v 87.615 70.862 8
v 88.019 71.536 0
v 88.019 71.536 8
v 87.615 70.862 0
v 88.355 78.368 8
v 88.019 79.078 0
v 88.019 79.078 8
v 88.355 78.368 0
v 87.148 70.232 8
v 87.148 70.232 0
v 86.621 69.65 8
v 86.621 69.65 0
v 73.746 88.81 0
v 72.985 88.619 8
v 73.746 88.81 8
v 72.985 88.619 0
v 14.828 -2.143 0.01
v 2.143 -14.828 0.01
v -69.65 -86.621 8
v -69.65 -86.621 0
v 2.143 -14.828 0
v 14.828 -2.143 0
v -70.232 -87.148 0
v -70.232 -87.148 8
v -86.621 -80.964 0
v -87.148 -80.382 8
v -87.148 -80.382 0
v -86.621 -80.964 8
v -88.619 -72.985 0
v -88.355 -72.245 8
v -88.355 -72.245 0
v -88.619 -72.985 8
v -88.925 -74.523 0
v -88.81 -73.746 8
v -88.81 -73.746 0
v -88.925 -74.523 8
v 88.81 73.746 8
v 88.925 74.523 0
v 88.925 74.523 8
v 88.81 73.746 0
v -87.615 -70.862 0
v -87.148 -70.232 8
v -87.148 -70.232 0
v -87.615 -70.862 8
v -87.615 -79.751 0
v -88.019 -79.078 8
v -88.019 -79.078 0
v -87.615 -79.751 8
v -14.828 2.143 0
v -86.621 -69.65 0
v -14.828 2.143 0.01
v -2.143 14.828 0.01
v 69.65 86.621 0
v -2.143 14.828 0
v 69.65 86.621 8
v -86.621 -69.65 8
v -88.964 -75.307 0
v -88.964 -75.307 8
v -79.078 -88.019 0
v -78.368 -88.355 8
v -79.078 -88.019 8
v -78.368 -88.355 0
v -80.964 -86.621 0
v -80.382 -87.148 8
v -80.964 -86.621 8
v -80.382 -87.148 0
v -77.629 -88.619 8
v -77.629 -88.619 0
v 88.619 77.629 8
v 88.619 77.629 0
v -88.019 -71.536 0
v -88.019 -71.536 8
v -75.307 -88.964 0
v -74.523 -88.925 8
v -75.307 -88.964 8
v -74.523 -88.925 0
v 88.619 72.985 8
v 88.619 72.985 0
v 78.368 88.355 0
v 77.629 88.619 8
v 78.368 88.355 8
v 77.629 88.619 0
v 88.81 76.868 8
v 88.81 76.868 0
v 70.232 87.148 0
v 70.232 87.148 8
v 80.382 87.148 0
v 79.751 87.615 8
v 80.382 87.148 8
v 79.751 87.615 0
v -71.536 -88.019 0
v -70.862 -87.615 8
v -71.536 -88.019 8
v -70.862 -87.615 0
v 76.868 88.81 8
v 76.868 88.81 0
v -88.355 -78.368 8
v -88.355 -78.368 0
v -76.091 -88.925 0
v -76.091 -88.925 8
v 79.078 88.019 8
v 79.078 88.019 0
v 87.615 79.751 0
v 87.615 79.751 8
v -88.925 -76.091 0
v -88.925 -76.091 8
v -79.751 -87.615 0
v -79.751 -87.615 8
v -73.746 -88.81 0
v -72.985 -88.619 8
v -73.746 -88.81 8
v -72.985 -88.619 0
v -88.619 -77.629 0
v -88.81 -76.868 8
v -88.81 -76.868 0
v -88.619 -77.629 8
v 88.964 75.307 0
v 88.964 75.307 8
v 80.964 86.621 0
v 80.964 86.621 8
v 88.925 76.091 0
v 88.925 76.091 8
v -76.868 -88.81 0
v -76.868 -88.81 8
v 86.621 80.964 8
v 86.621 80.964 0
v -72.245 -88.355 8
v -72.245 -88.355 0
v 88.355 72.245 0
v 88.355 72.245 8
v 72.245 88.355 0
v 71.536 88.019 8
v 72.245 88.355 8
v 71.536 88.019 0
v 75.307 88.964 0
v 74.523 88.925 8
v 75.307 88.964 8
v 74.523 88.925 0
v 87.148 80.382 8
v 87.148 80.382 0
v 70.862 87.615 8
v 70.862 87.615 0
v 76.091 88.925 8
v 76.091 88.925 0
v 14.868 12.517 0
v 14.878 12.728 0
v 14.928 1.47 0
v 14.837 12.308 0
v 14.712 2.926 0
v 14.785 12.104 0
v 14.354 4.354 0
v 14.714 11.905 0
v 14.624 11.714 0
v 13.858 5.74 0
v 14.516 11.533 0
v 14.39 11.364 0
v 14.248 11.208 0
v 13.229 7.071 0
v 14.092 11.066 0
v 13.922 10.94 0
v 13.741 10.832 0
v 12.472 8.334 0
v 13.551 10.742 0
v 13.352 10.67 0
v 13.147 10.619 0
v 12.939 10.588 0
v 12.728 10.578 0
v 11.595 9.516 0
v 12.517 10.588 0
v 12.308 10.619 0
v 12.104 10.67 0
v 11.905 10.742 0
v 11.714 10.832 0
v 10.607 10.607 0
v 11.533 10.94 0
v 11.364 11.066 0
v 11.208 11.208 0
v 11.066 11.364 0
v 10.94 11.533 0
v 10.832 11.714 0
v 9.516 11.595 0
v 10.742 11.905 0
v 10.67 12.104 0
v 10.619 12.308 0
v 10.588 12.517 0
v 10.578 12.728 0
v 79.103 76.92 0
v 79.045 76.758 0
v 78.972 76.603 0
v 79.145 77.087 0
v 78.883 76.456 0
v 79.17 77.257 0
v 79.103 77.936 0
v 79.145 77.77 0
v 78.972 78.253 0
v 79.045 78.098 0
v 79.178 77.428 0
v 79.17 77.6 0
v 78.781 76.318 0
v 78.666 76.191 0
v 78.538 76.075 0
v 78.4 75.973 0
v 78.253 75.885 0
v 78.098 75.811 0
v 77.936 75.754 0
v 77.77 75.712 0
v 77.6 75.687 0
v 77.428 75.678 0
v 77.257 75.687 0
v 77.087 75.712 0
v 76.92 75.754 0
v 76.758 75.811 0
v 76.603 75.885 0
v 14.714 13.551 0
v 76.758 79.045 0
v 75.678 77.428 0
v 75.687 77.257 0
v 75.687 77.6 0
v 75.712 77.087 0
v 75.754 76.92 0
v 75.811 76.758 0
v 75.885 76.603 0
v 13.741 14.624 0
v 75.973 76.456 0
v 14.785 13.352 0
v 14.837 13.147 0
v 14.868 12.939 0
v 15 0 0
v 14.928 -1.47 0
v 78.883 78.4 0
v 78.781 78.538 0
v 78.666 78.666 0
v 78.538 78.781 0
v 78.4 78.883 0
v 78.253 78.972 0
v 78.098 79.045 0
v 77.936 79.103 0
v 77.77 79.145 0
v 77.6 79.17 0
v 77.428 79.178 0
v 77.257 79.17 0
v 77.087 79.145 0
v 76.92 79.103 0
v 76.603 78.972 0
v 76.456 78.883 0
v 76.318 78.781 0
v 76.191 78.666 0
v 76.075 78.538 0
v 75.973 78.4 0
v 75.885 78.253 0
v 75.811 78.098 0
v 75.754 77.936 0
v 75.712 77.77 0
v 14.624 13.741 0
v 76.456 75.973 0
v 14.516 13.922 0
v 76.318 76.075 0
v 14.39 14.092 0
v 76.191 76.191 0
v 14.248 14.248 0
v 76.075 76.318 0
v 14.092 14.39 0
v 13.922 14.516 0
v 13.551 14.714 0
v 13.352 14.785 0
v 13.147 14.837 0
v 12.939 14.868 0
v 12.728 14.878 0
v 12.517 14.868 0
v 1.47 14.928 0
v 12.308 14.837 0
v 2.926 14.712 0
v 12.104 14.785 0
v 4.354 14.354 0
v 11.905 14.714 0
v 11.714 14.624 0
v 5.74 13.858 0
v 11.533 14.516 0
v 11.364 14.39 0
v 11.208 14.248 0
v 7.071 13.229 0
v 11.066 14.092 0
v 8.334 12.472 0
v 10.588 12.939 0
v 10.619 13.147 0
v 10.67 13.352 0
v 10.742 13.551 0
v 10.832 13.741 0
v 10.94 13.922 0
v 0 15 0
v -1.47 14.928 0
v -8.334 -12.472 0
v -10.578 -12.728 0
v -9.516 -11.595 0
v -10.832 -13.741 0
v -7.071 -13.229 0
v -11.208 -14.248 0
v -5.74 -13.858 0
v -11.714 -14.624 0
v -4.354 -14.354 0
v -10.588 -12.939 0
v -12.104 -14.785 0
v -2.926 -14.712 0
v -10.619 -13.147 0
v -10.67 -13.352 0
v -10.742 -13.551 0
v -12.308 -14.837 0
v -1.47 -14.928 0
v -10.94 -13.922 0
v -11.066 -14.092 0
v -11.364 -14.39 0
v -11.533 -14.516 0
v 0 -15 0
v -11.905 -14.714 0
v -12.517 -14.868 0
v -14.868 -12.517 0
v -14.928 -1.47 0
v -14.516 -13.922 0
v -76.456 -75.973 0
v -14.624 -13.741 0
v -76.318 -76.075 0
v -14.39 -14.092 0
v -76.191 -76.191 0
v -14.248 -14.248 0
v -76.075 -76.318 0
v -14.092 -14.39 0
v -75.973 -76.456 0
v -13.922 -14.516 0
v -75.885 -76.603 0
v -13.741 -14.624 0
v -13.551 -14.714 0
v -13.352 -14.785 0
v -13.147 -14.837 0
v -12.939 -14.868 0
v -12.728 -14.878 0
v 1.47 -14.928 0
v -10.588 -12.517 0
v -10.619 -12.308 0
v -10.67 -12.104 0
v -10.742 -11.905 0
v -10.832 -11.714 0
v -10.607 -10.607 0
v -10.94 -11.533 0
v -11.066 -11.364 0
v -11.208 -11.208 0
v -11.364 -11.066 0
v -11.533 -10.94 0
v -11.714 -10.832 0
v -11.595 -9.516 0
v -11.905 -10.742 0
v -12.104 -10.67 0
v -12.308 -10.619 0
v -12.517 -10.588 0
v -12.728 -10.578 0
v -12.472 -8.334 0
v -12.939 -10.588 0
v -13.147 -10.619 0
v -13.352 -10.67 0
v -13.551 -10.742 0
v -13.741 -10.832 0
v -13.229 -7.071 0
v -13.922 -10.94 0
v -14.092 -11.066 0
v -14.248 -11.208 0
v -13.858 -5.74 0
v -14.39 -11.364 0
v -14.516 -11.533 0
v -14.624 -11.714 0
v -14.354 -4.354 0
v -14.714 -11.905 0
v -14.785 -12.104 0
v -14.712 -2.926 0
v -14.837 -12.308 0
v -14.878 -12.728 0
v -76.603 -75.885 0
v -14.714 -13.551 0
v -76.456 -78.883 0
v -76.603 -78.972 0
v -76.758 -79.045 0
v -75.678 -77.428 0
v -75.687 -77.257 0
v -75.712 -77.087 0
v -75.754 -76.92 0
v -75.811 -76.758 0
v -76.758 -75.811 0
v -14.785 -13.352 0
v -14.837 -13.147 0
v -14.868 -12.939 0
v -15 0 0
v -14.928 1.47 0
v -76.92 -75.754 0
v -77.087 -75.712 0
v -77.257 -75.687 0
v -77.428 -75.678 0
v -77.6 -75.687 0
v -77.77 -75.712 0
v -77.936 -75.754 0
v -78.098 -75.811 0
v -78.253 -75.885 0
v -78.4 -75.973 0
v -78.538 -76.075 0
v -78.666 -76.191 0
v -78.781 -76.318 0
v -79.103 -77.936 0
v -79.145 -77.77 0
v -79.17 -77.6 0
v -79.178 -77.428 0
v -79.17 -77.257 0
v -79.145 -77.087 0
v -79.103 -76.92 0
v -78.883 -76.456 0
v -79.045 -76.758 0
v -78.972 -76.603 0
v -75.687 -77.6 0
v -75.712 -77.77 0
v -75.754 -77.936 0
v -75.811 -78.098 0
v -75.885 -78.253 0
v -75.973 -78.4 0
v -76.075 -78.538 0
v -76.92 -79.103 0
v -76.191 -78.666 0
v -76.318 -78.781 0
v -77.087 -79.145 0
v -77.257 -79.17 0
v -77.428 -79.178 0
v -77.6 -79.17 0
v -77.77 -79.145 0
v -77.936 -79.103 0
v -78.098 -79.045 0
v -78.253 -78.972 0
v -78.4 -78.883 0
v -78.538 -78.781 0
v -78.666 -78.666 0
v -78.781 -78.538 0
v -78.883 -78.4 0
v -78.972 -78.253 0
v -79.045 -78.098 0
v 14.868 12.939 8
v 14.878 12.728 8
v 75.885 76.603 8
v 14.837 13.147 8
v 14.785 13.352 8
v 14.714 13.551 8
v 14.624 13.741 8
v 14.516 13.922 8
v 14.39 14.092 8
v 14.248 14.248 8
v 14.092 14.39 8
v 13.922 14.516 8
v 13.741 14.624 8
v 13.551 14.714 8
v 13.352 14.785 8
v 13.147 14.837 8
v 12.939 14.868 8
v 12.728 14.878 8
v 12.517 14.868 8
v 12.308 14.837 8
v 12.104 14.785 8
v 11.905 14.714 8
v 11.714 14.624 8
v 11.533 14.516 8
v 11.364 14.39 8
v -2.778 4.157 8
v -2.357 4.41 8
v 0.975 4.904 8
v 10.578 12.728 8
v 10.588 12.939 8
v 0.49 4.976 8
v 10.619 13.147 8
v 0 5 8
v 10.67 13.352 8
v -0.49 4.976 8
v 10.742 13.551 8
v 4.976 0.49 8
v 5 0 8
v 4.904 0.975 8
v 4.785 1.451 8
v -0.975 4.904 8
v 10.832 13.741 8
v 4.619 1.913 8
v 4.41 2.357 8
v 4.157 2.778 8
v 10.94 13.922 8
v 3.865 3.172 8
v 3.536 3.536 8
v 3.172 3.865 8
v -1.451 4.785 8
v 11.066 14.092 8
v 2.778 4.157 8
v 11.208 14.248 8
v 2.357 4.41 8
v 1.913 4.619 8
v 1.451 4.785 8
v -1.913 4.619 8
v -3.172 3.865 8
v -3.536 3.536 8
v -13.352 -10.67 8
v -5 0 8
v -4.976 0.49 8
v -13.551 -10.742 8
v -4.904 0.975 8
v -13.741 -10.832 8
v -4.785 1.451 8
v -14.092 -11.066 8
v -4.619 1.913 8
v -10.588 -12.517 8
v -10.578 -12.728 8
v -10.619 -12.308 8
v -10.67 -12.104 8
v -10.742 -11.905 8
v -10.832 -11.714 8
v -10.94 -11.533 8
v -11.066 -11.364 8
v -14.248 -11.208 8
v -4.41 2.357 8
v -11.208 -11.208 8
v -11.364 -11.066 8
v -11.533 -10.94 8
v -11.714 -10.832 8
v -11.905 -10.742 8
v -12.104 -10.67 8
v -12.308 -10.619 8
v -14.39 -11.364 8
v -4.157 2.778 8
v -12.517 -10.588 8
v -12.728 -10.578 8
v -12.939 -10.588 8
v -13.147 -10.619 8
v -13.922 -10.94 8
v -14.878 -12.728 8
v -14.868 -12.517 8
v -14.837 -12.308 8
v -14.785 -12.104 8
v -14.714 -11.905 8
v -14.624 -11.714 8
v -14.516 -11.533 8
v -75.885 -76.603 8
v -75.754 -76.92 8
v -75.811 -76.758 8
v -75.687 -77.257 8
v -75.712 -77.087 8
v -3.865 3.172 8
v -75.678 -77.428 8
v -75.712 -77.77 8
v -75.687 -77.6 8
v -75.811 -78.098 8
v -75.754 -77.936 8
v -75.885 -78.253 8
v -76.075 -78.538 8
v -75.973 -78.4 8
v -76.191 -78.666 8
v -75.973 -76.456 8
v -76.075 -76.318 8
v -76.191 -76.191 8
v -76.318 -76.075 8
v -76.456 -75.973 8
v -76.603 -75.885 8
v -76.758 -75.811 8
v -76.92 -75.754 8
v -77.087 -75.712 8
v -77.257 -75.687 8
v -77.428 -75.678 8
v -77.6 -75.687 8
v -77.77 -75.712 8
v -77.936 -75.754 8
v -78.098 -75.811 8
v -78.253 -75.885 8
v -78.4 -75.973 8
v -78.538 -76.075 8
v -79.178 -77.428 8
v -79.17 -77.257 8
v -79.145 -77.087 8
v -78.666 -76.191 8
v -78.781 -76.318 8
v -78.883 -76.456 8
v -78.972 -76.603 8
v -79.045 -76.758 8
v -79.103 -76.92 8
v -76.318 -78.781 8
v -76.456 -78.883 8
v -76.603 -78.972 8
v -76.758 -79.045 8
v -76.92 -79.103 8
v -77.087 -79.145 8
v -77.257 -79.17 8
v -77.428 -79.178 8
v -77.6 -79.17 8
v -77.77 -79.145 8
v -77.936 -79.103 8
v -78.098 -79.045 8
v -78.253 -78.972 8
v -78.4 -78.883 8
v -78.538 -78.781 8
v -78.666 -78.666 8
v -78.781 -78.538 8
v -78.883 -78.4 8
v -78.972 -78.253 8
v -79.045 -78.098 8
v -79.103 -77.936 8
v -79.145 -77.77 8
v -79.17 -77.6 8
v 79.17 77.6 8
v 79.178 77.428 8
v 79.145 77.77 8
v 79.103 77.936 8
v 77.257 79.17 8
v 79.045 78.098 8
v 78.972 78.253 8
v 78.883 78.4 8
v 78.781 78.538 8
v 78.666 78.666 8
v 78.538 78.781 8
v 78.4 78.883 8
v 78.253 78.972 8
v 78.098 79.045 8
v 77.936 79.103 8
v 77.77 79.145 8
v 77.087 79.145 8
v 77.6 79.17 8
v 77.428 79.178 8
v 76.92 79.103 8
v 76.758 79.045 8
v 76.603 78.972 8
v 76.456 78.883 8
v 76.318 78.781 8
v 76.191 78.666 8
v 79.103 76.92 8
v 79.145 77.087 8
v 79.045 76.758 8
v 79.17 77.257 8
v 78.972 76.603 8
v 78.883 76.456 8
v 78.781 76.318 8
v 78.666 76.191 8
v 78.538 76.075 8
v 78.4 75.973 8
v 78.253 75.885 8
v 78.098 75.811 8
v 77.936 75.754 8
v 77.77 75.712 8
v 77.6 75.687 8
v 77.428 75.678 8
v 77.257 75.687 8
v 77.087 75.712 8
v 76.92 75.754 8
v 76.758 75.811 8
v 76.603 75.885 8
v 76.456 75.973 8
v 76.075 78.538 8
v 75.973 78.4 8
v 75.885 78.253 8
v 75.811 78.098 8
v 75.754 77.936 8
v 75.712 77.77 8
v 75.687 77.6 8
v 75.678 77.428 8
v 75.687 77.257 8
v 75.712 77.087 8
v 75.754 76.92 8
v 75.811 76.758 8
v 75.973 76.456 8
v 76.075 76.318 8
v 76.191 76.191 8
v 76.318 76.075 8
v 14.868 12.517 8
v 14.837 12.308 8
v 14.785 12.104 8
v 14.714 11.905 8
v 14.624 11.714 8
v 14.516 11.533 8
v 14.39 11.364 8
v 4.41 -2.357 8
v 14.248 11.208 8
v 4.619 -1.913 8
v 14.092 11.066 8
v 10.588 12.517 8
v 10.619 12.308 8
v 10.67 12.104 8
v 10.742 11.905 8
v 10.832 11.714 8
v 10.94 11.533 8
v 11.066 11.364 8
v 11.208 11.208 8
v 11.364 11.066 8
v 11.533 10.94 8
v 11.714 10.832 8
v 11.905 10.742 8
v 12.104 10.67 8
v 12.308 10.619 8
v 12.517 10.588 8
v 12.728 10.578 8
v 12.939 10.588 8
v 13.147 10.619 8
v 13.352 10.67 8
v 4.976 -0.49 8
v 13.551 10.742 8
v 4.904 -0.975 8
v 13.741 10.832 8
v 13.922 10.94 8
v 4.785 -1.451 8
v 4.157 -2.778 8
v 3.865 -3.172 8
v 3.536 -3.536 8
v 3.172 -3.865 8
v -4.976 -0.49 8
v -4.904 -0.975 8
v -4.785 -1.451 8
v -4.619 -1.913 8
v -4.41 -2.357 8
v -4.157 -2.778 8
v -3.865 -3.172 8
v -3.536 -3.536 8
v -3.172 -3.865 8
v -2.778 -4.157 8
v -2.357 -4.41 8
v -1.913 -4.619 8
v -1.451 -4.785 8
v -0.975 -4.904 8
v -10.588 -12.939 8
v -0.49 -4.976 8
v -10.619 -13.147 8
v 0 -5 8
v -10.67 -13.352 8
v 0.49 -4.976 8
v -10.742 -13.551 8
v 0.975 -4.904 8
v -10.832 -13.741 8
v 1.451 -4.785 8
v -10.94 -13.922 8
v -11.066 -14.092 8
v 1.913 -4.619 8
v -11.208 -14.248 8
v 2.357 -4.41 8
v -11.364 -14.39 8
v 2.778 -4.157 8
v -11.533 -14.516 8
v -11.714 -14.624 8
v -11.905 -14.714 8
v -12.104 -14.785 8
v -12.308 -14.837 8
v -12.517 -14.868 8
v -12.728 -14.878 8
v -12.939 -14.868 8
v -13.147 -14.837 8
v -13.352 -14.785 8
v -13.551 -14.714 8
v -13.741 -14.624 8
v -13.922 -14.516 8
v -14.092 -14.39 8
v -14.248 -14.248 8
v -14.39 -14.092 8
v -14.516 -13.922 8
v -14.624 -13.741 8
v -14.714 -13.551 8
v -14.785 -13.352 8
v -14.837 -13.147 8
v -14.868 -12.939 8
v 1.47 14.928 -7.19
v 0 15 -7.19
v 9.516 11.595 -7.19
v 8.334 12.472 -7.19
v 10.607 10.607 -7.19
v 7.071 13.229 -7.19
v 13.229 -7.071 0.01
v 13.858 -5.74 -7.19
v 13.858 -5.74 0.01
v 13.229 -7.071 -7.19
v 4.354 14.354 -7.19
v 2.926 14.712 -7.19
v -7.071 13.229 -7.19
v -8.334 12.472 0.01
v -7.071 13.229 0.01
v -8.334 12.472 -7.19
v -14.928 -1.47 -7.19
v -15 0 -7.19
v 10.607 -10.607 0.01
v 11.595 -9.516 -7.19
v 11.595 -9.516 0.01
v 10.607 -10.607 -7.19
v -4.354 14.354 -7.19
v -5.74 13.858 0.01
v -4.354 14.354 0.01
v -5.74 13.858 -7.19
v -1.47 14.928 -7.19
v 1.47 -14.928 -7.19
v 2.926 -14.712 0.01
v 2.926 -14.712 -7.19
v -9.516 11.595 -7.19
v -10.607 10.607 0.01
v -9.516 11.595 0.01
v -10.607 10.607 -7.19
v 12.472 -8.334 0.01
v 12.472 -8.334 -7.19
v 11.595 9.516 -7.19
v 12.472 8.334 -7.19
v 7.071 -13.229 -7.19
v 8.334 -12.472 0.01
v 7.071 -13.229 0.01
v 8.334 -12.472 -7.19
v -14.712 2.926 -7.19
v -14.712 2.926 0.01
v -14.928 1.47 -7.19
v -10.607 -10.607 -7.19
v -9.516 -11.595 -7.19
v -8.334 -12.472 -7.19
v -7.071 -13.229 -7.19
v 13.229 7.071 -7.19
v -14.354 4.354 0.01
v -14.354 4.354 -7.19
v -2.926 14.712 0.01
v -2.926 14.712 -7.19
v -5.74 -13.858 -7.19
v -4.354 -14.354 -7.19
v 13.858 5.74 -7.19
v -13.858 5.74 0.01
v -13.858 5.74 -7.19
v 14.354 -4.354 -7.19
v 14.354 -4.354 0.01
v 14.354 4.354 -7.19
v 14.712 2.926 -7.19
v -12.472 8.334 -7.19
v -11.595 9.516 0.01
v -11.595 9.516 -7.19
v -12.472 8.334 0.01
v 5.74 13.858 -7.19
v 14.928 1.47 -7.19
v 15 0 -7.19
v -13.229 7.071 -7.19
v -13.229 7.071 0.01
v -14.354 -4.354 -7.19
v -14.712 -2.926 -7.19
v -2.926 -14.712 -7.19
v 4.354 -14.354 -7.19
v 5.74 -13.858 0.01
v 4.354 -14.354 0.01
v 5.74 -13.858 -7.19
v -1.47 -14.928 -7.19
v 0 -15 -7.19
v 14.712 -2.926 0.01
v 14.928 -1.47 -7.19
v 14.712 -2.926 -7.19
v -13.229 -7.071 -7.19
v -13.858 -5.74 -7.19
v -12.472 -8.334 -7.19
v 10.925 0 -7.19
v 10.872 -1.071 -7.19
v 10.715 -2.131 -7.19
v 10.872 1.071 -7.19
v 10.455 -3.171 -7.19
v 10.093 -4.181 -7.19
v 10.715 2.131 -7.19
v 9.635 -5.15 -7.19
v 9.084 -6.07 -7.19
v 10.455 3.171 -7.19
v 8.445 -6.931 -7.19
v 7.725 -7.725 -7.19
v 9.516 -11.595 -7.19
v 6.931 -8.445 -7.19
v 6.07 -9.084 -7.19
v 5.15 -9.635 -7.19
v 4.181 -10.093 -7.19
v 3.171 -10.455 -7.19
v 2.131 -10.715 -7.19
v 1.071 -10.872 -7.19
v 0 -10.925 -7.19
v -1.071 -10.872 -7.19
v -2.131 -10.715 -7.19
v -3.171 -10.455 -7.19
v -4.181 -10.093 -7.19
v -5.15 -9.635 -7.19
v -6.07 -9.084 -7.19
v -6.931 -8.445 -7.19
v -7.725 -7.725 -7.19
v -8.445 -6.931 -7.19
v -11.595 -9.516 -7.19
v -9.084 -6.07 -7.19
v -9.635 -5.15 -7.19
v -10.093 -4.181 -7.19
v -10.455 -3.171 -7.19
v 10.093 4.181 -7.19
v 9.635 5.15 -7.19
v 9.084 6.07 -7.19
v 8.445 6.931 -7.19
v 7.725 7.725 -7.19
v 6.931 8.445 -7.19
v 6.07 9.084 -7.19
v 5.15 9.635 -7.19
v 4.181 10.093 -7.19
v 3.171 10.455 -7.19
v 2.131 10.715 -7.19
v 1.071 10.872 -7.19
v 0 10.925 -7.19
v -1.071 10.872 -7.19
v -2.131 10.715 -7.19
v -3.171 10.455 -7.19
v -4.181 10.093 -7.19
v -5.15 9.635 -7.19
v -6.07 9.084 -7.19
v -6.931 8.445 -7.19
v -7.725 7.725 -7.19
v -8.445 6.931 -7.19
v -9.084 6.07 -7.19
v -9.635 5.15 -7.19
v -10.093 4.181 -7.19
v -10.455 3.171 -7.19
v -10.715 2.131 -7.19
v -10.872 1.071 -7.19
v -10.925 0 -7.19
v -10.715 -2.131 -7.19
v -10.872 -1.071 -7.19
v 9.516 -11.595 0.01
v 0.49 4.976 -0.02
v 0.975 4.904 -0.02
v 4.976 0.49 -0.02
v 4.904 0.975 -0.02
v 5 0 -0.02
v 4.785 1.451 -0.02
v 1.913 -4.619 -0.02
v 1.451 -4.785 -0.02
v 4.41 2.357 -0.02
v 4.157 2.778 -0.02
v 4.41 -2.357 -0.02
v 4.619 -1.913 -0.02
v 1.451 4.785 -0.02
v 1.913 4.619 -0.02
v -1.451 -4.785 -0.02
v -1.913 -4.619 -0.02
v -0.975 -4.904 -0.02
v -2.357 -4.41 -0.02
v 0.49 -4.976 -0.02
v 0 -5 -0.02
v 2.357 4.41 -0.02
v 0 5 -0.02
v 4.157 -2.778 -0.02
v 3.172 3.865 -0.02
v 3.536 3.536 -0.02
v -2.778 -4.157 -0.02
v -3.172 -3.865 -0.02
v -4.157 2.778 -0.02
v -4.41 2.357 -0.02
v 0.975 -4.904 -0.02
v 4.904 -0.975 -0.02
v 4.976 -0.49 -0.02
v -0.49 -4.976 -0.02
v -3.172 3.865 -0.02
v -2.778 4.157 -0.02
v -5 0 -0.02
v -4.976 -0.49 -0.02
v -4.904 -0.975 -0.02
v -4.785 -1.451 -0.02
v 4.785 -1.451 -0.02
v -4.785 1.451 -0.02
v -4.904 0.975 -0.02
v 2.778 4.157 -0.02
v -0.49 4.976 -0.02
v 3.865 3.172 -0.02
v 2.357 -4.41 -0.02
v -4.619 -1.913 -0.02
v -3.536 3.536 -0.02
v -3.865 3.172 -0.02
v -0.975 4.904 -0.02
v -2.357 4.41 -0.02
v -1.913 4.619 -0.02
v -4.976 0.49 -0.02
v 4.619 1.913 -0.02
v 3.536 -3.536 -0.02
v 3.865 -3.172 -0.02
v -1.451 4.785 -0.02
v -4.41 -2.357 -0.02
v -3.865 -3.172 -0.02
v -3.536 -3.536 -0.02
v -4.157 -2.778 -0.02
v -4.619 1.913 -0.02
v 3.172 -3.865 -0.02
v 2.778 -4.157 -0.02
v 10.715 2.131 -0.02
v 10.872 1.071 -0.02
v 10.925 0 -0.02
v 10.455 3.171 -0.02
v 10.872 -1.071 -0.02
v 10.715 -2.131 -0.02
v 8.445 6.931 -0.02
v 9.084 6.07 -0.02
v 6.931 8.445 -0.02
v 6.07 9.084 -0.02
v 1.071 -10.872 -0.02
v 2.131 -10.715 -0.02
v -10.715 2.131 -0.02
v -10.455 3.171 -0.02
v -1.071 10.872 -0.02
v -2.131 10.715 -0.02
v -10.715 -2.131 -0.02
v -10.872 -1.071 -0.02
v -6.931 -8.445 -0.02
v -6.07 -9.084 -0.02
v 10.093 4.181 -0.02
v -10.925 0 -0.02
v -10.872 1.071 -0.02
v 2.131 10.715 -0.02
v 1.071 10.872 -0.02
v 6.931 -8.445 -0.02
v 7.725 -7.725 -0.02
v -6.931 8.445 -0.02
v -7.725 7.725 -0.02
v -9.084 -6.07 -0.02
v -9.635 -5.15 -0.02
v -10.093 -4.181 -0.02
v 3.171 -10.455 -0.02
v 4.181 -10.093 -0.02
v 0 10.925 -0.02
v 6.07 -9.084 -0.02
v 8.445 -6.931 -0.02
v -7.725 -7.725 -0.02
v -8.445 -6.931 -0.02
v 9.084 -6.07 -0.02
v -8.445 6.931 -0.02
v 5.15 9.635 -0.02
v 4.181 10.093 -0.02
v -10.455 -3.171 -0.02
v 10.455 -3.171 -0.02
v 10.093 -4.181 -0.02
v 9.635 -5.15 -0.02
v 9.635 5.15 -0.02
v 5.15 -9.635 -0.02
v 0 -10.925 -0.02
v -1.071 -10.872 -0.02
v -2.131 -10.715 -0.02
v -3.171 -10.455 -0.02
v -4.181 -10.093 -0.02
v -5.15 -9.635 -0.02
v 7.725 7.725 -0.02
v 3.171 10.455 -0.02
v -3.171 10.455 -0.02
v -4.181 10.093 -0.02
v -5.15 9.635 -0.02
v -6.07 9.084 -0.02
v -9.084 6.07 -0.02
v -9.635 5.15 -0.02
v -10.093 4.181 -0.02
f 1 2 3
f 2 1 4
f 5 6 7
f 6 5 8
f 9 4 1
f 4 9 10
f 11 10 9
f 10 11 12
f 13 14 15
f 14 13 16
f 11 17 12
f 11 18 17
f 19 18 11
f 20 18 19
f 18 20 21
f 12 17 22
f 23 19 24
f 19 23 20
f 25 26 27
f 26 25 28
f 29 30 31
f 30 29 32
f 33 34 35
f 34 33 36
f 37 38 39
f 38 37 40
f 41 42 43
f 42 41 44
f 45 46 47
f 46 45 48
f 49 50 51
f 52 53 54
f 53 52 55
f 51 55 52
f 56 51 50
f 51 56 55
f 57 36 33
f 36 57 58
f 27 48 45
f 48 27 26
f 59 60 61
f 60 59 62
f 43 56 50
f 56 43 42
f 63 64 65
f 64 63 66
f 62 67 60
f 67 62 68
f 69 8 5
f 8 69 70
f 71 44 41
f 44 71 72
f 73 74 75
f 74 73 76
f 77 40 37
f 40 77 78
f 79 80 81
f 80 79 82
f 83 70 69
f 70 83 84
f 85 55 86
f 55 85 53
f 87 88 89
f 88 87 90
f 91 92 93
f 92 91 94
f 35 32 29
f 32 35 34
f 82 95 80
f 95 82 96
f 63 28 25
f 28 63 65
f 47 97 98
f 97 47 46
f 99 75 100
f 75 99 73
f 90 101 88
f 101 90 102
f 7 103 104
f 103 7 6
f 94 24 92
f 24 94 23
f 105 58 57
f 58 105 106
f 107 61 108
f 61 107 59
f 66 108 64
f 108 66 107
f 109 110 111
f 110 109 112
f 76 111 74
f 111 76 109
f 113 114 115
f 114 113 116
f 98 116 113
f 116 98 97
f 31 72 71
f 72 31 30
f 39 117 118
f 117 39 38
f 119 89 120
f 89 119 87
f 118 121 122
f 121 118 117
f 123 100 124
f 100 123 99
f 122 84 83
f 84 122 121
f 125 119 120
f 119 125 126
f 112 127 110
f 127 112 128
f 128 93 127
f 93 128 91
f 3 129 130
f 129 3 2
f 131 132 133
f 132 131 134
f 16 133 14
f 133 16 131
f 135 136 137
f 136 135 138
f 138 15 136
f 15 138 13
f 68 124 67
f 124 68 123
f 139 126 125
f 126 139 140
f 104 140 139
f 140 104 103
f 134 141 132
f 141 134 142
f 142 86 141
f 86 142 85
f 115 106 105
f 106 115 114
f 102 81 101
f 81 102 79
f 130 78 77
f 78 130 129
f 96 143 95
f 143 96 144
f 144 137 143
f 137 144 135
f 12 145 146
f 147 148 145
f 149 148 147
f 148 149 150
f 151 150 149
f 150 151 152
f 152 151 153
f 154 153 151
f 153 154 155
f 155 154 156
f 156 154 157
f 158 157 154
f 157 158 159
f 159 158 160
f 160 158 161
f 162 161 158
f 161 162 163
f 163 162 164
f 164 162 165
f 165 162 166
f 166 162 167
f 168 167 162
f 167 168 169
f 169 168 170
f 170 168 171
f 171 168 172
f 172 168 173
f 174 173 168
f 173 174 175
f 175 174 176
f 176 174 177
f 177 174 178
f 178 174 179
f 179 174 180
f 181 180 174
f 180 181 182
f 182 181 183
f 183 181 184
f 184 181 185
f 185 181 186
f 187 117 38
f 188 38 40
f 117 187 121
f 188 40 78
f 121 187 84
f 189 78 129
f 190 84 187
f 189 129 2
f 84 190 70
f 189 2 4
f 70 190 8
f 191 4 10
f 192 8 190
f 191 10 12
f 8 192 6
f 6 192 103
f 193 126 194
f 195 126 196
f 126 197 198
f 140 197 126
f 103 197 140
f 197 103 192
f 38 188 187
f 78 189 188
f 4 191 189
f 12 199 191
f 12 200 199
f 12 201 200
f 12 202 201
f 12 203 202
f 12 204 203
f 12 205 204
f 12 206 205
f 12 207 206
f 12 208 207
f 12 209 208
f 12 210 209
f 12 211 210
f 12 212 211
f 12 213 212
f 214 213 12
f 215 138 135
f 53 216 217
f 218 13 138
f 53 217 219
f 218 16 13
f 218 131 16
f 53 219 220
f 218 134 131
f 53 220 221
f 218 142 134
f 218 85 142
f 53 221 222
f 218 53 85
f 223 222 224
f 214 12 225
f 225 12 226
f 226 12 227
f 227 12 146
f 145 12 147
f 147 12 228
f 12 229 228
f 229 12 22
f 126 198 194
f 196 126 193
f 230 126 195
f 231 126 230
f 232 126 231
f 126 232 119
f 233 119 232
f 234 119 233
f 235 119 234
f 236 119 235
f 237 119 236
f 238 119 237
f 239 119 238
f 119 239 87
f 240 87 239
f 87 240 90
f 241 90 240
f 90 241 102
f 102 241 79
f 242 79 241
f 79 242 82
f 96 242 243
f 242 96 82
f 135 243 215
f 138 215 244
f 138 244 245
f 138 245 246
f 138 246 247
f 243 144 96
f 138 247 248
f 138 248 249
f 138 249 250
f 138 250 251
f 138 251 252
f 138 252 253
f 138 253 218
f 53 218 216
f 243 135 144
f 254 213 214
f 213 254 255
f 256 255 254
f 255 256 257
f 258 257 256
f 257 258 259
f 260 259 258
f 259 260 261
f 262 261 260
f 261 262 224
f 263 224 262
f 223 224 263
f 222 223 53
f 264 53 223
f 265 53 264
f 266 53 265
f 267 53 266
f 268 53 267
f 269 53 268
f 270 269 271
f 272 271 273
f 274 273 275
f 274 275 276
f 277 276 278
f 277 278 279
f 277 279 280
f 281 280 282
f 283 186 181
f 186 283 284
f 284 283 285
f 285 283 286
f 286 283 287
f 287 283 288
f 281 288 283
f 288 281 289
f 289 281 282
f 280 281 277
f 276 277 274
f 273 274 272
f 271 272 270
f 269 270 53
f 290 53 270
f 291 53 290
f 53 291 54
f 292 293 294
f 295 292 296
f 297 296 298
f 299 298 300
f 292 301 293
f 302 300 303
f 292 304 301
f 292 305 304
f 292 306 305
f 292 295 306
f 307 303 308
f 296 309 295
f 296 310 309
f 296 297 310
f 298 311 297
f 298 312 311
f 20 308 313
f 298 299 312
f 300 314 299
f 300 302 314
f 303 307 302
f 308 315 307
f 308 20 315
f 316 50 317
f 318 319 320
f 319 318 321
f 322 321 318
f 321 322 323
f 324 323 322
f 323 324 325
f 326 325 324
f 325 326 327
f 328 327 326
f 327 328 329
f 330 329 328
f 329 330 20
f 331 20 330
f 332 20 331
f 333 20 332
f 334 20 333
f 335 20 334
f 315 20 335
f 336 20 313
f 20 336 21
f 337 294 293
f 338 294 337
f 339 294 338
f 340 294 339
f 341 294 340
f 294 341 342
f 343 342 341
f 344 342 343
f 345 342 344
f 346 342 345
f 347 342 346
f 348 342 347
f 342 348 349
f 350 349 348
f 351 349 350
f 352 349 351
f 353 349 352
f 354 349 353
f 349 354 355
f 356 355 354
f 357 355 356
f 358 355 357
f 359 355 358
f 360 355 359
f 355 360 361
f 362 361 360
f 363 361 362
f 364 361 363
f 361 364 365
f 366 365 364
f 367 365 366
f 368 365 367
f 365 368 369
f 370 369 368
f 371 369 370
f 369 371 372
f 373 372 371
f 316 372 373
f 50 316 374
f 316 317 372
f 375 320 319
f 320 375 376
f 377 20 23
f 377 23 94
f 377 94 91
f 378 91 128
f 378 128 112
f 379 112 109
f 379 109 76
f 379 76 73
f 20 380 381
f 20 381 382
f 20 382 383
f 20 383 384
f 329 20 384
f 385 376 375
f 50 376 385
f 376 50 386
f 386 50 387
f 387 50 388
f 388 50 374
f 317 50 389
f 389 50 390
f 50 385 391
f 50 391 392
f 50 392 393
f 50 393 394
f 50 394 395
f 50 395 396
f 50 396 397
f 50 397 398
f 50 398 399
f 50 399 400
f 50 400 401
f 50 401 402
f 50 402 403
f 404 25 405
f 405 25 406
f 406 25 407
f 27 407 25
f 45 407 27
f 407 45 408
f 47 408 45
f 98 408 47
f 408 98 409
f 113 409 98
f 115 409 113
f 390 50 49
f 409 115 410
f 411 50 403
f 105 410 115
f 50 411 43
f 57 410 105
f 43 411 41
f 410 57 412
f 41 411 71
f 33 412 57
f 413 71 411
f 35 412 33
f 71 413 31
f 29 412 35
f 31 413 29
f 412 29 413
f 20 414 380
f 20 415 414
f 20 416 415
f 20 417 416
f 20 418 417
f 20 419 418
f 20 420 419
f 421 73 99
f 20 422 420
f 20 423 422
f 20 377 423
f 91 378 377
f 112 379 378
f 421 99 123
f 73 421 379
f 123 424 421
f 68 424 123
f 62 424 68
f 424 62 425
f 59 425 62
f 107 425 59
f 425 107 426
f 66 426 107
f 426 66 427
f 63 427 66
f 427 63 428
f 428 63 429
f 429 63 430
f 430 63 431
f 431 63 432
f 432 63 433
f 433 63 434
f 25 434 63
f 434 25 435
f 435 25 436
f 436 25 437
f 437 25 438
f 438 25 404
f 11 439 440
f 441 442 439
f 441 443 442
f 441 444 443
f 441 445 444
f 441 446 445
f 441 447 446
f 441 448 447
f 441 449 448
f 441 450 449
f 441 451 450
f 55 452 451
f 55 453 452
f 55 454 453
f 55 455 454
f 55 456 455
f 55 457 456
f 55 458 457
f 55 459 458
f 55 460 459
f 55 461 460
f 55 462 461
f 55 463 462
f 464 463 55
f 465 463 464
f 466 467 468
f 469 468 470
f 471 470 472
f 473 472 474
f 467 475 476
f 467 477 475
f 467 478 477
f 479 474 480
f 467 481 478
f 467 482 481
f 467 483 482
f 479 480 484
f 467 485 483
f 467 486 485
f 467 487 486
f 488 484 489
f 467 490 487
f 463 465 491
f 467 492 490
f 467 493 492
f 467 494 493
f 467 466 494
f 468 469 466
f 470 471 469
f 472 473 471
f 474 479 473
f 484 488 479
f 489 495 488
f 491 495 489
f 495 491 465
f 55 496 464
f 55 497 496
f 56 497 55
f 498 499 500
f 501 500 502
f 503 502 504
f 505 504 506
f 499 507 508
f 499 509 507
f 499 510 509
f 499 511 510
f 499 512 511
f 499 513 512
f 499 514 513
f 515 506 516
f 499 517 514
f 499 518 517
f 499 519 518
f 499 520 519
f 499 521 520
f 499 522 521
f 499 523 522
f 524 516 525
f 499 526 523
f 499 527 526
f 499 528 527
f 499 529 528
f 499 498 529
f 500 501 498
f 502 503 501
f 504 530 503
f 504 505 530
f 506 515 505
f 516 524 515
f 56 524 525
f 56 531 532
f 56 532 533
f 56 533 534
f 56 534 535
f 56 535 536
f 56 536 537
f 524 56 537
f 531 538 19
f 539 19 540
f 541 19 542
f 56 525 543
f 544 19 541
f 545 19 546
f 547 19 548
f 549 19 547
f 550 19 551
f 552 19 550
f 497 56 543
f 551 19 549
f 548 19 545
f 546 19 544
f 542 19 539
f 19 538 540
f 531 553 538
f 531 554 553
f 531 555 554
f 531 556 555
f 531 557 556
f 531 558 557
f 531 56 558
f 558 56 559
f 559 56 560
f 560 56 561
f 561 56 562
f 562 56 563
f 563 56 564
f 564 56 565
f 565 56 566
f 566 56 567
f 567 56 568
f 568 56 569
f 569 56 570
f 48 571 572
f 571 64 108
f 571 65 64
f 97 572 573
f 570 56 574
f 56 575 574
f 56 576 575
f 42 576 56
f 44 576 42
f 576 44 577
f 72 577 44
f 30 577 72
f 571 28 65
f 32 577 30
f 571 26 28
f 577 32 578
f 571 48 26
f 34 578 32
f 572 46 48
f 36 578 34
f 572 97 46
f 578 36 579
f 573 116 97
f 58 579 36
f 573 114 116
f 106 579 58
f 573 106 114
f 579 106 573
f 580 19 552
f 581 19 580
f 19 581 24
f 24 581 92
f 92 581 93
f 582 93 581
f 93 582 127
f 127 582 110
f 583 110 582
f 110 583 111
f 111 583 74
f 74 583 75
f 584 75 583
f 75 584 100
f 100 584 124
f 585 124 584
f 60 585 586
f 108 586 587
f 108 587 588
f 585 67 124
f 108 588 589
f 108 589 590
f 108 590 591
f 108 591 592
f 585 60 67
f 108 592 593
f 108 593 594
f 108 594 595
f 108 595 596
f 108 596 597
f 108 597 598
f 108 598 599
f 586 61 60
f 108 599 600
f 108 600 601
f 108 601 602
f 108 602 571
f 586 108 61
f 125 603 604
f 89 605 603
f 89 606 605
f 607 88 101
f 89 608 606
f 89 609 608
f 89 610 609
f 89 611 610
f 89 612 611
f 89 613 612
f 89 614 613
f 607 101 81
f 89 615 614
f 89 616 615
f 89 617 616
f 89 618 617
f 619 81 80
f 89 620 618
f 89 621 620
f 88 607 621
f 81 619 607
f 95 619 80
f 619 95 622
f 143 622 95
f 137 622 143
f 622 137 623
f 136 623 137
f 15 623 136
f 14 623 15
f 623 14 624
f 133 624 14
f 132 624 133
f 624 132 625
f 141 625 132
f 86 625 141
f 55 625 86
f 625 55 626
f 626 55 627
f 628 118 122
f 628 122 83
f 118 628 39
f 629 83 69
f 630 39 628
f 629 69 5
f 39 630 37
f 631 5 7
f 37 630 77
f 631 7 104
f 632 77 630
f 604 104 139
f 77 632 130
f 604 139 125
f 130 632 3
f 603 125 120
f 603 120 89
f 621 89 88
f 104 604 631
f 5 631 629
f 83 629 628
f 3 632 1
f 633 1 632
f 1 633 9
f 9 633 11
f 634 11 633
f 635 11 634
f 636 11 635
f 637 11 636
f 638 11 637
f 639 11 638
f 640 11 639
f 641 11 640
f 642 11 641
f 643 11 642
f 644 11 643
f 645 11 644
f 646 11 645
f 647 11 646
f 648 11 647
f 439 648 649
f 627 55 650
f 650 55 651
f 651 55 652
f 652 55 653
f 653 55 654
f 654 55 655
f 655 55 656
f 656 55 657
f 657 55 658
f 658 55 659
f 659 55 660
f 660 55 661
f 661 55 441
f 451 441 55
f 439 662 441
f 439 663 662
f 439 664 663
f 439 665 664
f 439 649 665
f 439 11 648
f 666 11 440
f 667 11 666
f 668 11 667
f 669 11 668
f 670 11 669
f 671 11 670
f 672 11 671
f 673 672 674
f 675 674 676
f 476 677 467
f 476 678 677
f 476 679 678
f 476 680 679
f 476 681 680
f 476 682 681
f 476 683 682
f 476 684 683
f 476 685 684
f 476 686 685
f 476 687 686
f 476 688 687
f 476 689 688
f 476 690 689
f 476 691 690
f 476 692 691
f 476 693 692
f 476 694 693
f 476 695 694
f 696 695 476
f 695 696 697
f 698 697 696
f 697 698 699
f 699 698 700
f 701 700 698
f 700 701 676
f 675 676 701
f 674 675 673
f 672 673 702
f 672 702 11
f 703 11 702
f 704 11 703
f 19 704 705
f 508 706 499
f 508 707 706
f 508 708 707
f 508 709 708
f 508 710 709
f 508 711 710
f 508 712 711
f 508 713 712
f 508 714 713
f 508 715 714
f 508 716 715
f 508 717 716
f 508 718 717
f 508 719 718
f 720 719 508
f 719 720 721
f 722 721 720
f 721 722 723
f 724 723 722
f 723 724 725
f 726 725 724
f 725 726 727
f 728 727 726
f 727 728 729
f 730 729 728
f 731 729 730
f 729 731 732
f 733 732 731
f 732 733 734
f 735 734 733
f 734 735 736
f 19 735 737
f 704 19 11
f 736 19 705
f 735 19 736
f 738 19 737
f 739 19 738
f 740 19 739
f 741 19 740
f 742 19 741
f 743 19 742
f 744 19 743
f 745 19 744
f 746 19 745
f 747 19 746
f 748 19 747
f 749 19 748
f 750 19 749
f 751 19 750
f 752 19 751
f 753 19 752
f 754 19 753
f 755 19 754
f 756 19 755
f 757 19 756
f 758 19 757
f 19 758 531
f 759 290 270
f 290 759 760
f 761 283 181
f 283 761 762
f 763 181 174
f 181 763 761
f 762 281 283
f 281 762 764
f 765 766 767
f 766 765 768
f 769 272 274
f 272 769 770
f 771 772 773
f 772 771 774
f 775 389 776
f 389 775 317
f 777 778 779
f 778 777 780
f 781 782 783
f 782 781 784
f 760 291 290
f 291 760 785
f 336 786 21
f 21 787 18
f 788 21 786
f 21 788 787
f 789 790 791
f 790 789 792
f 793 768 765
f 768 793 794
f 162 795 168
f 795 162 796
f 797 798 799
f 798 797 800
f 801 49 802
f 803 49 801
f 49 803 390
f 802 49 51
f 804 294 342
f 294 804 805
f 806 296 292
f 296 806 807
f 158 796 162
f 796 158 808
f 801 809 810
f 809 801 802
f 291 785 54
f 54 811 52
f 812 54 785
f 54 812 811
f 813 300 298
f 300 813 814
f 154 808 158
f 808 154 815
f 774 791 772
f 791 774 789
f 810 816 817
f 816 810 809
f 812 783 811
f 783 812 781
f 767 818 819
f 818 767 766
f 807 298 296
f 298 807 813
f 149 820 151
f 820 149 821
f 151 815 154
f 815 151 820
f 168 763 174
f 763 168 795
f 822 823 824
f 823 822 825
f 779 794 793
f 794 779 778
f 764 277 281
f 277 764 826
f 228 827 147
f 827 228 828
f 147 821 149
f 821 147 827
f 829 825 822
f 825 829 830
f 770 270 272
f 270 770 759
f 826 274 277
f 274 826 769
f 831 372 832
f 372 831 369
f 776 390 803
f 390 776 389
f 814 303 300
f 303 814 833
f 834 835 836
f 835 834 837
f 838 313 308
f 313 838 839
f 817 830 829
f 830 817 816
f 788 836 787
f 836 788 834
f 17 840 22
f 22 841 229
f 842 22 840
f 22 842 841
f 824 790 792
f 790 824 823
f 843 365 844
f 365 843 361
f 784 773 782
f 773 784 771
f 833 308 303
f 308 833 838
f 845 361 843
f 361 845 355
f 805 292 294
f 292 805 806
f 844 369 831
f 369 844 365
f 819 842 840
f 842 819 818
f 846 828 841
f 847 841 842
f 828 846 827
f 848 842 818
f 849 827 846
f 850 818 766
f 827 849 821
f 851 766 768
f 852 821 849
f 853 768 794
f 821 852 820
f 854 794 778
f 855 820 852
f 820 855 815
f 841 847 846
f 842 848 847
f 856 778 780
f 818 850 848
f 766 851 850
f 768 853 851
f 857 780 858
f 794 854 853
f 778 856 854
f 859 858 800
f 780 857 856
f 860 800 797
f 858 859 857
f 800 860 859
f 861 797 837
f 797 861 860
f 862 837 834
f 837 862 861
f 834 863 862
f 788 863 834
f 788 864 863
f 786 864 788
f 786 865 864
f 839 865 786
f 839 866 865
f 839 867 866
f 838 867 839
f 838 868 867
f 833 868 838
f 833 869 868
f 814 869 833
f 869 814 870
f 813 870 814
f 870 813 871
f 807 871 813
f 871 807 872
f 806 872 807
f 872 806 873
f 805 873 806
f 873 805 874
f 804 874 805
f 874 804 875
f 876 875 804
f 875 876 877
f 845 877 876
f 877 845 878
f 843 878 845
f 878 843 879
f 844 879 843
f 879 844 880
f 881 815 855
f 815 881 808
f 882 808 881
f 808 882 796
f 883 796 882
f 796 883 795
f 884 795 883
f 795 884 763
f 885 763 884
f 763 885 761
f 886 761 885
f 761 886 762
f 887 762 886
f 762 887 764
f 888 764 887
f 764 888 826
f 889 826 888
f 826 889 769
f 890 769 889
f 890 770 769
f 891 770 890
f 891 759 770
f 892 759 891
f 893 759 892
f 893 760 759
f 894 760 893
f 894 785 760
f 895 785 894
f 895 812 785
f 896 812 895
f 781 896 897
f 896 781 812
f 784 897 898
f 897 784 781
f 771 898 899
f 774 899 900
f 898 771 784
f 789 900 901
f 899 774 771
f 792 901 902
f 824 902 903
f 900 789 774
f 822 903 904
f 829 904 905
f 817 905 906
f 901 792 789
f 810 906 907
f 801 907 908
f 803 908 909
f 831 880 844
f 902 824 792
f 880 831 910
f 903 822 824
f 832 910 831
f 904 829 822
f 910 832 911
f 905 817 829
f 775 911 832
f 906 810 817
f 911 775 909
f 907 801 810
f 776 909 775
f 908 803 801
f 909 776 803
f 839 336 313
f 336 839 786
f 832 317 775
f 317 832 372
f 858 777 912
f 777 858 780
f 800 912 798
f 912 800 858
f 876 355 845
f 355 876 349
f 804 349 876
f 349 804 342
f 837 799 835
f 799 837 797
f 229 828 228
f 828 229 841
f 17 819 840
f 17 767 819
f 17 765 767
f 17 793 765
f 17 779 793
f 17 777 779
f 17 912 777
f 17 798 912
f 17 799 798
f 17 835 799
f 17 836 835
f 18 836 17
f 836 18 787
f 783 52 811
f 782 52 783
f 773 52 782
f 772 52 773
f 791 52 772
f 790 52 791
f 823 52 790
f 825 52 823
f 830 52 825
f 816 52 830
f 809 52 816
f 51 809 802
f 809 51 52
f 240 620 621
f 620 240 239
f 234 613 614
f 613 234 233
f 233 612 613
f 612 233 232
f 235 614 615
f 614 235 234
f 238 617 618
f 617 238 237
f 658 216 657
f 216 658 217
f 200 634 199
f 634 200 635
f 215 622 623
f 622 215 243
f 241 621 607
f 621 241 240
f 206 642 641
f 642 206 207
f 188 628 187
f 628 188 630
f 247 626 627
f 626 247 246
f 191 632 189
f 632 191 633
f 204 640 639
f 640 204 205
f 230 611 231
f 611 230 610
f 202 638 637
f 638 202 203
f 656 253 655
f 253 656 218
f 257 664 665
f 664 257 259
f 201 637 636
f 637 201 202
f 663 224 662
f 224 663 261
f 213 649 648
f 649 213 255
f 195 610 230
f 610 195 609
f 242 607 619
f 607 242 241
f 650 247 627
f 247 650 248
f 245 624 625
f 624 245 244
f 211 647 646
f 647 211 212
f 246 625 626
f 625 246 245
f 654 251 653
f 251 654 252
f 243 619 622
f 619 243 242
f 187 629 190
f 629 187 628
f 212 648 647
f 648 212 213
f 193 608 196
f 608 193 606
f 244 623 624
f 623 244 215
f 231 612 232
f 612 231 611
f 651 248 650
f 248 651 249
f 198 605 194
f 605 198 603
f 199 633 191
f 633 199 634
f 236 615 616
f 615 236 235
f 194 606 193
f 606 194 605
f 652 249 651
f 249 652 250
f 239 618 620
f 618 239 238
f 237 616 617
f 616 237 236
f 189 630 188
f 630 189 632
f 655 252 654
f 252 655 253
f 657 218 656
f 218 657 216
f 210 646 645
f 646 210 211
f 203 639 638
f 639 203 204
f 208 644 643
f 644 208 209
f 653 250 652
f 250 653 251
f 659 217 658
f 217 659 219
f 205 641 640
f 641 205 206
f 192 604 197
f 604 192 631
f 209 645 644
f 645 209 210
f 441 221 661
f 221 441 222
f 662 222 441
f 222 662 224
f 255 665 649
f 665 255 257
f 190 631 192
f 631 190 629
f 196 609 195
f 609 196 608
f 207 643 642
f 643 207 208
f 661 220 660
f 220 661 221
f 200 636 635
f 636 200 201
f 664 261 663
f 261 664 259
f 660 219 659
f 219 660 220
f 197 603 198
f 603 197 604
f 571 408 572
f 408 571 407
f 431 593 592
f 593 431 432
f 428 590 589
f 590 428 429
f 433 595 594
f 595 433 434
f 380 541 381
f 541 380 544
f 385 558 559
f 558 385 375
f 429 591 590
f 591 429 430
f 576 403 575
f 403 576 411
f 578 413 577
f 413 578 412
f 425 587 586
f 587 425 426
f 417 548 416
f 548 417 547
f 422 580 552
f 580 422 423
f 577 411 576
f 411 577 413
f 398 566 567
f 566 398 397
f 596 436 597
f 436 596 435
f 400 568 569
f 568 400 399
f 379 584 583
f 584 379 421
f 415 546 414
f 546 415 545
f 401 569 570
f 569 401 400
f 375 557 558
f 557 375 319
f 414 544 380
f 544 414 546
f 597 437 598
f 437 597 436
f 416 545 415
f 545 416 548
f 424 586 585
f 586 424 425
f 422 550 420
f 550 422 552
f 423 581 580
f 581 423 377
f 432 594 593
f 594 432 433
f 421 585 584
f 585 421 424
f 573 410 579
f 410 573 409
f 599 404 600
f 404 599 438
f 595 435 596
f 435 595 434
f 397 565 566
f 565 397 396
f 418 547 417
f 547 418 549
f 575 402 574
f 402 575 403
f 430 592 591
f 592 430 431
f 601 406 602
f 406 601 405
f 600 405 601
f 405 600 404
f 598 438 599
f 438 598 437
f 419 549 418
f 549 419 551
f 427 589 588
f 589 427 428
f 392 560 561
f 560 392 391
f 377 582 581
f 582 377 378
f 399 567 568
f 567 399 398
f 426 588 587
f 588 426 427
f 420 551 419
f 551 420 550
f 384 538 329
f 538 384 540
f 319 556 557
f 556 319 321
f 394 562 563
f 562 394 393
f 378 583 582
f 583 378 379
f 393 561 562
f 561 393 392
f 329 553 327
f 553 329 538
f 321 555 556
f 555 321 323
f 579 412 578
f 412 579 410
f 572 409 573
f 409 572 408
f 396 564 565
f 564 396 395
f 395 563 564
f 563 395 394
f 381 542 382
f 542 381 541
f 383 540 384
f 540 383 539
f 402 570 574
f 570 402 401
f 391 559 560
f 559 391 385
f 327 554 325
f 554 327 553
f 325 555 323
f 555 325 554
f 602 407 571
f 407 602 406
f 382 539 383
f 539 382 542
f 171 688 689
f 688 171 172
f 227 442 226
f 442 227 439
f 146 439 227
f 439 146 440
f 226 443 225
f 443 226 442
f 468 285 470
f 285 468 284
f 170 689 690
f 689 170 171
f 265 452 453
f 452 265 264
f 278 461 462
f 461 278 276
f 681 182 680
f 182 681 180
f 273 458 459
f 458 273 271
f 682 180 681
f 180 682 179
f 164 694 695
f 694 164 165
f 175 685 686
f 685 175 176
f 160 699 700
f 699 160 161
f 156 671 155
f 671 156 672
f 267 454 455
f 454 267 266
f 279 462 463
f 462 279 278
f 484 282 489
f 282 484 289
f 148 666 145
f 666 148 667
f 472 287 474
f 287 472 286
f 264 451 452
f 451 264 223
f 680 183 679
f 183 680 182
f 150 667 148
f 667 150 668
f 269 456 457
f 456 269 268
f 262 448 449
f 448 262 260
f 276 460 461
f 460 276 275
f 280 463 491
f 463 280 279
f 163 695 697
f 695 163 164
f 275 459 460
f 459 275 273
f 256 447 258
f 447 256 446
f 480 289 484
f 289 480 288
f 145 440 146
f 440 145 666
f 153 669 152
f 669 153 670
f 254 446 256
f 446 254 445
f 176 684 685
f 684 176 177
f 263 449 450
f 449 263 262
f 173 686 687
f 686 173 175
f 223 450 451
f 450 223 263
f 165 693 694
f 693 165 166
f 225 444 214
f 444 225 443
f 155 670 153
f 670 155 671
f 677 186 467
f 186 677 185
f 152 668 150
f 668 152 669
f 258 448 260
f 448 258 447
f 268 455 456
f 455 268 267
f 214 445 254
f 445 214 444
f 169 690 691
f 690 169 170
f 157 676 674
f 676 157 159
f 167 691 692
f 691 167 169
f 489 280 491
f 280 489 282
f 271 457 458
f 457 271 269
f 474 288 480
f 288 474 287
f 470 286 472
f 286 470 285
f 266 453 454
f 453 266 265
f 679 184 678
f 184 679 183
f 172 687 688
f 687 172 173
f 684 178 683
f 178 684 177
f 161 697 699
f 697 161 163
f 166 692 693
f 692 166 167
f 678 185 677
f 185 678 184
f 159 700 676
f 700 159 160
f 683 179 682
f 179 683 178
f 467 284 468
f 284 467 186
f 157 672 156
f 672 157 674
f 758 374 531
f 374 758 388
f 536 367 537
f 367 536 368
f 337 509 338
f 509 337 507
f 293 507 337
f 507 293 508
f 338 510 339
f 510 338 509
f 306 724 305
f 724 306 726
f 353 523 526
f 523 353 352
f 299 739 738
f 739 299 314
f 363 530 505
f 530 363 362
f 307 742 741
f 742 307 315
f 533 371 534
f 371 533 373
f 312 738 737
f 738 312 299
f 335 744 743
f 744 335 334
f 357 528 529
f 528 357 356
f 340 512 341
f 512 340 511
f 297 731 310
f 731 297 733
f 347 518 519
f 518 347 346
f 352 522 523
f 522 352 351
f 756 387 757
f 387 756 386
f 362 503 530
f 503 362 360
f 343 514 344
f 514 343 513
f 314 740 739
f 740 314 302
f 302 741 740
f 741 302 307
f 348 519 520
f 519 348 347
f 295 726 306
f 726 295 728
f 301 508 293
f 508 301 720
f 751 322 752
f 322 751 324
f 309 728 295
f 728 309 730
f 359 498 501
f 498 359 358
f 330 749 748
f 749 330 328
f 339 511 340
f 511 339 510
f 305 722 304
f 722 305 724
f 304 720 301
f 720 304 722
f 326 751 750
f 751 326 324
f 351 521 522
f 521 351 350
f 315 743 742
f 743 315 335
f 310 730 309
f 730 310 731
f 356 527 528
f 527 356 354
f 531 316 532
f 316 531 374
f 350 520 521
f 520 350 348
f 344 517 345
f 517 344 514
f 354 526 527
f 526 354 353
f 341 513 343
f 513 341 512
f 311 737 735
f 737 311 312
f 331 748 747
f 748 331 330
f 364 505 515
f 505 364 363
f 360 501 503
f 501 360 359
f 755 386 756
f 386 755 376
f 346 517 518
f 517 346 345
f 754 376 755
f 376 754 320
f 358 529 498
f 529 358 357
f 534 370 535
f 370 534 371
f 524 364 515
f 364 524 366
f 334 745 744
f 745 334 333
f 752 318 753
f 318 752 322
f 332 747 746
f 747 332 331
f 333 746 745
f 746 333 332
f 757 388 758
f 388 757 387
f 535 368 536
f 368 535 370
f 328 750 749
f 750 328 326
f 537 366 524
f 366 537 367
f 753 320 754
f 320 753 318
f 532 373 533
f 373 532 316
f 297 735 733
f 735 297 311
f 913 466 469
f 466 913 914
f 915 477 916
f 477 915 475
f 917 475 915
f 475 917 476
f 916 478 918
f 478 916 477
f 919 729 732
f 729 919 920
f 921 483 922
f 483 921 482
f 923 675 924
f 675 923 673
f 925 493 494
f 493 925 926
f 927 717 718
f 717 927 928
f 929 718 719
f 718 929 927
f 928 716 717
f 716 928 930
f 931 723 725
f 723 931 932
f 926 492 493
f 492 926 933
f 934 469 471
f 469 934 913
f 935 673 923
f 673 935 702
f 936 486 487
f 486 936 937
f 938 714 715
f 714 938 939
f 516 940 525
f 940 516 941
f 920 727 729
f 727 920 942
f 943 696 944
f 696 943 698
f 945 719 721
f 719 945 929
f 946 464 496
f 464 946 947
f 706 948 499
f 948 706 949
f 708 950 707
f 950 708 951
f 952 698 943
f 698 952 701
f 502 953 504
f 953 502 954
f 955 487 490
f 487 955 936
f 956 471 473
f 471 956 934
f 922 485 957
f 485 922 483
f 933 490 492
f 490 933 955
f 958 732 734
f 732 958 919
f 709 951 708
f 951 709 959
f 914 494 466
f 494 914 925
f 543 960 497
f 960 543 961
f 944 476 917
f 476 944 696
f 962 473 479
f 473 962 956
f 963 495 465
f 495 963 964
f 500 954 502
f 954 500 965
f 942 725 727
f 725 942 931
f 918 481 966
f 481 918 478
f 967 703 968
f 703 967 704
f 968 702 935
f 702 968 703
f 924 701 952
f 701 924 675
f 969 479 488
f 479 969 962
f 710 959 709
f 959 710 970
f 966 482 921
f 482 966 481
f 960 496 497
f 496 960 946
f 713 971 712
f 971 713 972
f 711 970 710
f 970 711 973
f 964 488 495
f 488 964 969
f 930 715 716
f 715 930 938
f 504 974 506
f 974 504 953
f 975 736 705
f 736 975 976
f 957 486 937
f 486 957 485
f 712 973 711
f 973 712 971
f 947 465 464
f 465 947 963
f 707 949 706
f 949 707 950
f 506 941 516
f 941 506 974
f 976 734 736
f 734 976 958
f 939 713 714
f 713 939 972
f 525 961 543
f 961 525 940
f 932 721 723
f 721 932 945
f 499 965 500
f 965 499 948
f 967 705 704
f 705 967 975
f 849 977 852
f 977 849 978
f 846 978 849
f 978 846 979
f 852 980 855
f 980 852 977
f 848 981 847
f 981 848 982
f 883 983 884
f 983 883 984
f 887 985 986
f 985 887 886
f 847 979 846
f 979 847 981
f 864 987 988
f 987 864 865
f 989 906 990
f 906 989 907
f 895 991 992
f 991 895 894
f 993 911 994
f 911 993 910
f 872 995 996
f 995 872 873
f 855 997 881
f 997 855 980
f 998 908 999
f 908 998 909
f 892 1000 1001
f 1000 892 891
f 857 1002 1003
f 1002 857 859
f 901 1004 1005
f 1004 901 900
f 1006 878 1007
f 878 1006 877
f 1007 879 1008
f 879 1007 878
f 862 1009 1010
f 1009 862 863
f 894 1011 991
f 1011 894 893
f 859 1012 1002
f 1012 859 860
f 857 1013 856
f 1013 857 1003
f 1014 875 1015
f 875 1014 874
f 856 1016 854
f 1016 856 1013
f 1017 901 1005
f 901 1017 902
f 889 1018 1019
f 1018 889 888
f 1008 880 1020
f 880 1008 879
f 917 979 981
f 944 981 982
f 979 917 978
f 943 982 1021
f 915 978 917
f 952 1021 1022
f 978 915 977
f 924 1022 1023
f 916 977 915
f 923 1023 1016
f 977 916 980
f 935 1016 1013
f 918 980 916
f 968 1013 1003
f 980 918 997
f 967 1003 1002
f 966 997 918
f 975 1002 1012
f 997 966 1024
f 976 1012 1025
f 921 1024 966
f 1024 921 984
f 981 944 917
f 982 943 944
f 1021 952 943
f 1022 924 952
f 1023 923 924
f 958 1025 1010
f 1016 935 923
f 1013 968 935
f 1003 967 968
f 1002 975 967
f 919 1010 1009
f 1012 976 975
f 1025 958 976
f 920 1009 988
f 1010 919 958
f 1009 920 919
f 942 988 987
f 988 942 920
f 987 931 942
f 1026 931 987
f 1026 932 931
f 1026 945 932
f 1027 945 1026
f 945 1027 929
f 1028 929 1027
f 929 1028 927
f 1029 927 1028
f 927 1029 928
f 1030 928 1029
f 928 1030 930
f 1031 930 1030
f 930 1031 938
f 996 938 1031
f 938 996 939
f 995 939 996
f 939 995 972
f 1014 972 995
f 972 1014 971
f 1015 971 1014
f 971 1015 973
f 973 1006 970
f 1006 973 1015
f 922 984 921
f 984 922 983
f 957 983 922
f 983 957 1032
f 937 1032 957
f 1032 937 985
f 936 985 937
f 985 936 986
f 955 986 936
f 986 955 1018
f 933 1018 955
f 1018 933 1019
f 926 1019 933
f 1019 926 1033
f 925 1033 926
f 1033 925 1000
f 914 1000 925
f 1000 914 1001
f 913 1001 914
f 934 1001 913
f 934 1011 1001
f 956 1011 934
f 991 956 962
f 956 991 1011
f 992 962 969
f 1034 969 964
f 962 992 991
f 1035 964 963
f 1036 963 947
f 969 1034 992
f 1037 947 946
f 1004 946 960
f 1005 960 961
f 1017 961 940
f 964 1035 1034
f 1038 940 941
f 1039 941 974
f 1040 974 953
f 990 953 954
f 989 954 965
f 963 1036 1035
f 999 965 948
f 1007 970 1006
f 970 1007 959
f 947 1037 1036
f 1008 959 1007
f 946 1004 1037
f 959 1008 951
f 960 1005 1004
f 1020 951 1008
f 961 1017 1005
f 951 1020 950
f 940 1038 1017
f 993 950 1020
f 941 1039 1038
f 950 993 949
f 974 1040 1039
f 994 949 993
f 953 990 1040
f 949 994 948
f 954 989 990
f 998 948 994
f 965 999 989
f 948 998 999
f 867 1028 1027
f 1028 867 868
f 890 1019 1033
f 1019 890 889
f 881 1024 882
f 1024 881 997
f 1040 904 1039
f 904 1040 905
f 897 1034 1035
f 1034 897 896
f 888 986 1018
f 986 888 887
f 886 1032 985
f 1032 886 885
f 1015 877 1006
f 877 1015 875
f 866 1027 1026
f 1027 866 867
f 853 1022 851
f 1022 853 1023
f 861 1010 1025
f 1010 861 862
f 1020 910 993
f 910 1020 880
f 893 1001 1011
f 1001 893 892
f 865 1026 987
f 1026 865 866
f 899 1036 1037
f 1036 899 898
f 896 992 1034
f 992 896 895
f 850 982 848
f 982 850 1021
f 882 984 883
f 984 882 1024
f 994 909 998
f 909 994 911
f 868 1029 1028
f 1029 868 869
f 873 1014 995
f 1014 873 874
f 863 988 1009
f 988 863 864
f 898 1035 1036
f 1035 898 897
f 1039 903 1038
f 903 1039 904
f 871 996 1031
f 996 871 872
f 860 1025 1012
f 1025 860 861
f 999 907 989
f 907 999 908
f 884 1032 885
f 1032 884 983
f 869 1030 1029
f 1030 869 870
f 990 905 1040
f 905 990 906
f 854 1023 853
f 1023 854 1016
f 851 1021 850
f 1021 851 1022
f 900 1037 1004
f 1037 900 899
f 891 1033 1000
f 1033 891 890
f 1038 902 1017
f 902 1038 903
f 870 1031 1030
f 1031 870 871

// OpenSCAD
// Gen-CU — front BEARING BRIDGE (bar endbell, 2026-10-10): a 608 boss on a 24 mm wide bar that spans the
// two frame rods at 45 deg and 45+180 deg (R = flange_bolt_r). The front bridge uses the rods at 45/225 deg, the rear
// bridge the rods at 135/315 deg, so the two bridges cross at 90 deg and the stator is held at 4 points.
// A bar instead of a full disc is what lets this big-ring kit fit ONE 410 mm plate. Print flat face DOWN (boss up, no supports).
// Brace holes (temporary M4 jack rods, R = brace_r) sit on the bar axis.
include <parameters.scad>;
$fn = 64;
bar_w = 24;
bar_len = 2 * (flange_bolt_r + 9);
module bar_2d() { offset(r=8) offset(delta=-8) square([bar_len, bar_w], center=true); }
difference() {
    rotate([0, 0, 45]) union() {
        linear_extrude(endbell_thick) bar_2d();
        translate([0, 0, -bearing_h + 0.01]) cylinder(d=30, h=bearing_h);
    }
    translate([0, 0, -bearing_h - 0.1]) cylinder(d=endbell_shaft_clear, h=50);
    translate([0, 0, -bearing_h - 0.02]) cylinder(d=bearing_d, h=bearing_h);
    for (s = [0, 180]) rotate([0, 0, 45 + s]) translate([flange_bolt_r, 0, -20]) cylinder(d=m3_clear, h=60);
    for (a = brace_angles) translate([brace_r*cos(a), brace_r*sin(a), -20]) cylinder(d=brace_d, h=50);
}
